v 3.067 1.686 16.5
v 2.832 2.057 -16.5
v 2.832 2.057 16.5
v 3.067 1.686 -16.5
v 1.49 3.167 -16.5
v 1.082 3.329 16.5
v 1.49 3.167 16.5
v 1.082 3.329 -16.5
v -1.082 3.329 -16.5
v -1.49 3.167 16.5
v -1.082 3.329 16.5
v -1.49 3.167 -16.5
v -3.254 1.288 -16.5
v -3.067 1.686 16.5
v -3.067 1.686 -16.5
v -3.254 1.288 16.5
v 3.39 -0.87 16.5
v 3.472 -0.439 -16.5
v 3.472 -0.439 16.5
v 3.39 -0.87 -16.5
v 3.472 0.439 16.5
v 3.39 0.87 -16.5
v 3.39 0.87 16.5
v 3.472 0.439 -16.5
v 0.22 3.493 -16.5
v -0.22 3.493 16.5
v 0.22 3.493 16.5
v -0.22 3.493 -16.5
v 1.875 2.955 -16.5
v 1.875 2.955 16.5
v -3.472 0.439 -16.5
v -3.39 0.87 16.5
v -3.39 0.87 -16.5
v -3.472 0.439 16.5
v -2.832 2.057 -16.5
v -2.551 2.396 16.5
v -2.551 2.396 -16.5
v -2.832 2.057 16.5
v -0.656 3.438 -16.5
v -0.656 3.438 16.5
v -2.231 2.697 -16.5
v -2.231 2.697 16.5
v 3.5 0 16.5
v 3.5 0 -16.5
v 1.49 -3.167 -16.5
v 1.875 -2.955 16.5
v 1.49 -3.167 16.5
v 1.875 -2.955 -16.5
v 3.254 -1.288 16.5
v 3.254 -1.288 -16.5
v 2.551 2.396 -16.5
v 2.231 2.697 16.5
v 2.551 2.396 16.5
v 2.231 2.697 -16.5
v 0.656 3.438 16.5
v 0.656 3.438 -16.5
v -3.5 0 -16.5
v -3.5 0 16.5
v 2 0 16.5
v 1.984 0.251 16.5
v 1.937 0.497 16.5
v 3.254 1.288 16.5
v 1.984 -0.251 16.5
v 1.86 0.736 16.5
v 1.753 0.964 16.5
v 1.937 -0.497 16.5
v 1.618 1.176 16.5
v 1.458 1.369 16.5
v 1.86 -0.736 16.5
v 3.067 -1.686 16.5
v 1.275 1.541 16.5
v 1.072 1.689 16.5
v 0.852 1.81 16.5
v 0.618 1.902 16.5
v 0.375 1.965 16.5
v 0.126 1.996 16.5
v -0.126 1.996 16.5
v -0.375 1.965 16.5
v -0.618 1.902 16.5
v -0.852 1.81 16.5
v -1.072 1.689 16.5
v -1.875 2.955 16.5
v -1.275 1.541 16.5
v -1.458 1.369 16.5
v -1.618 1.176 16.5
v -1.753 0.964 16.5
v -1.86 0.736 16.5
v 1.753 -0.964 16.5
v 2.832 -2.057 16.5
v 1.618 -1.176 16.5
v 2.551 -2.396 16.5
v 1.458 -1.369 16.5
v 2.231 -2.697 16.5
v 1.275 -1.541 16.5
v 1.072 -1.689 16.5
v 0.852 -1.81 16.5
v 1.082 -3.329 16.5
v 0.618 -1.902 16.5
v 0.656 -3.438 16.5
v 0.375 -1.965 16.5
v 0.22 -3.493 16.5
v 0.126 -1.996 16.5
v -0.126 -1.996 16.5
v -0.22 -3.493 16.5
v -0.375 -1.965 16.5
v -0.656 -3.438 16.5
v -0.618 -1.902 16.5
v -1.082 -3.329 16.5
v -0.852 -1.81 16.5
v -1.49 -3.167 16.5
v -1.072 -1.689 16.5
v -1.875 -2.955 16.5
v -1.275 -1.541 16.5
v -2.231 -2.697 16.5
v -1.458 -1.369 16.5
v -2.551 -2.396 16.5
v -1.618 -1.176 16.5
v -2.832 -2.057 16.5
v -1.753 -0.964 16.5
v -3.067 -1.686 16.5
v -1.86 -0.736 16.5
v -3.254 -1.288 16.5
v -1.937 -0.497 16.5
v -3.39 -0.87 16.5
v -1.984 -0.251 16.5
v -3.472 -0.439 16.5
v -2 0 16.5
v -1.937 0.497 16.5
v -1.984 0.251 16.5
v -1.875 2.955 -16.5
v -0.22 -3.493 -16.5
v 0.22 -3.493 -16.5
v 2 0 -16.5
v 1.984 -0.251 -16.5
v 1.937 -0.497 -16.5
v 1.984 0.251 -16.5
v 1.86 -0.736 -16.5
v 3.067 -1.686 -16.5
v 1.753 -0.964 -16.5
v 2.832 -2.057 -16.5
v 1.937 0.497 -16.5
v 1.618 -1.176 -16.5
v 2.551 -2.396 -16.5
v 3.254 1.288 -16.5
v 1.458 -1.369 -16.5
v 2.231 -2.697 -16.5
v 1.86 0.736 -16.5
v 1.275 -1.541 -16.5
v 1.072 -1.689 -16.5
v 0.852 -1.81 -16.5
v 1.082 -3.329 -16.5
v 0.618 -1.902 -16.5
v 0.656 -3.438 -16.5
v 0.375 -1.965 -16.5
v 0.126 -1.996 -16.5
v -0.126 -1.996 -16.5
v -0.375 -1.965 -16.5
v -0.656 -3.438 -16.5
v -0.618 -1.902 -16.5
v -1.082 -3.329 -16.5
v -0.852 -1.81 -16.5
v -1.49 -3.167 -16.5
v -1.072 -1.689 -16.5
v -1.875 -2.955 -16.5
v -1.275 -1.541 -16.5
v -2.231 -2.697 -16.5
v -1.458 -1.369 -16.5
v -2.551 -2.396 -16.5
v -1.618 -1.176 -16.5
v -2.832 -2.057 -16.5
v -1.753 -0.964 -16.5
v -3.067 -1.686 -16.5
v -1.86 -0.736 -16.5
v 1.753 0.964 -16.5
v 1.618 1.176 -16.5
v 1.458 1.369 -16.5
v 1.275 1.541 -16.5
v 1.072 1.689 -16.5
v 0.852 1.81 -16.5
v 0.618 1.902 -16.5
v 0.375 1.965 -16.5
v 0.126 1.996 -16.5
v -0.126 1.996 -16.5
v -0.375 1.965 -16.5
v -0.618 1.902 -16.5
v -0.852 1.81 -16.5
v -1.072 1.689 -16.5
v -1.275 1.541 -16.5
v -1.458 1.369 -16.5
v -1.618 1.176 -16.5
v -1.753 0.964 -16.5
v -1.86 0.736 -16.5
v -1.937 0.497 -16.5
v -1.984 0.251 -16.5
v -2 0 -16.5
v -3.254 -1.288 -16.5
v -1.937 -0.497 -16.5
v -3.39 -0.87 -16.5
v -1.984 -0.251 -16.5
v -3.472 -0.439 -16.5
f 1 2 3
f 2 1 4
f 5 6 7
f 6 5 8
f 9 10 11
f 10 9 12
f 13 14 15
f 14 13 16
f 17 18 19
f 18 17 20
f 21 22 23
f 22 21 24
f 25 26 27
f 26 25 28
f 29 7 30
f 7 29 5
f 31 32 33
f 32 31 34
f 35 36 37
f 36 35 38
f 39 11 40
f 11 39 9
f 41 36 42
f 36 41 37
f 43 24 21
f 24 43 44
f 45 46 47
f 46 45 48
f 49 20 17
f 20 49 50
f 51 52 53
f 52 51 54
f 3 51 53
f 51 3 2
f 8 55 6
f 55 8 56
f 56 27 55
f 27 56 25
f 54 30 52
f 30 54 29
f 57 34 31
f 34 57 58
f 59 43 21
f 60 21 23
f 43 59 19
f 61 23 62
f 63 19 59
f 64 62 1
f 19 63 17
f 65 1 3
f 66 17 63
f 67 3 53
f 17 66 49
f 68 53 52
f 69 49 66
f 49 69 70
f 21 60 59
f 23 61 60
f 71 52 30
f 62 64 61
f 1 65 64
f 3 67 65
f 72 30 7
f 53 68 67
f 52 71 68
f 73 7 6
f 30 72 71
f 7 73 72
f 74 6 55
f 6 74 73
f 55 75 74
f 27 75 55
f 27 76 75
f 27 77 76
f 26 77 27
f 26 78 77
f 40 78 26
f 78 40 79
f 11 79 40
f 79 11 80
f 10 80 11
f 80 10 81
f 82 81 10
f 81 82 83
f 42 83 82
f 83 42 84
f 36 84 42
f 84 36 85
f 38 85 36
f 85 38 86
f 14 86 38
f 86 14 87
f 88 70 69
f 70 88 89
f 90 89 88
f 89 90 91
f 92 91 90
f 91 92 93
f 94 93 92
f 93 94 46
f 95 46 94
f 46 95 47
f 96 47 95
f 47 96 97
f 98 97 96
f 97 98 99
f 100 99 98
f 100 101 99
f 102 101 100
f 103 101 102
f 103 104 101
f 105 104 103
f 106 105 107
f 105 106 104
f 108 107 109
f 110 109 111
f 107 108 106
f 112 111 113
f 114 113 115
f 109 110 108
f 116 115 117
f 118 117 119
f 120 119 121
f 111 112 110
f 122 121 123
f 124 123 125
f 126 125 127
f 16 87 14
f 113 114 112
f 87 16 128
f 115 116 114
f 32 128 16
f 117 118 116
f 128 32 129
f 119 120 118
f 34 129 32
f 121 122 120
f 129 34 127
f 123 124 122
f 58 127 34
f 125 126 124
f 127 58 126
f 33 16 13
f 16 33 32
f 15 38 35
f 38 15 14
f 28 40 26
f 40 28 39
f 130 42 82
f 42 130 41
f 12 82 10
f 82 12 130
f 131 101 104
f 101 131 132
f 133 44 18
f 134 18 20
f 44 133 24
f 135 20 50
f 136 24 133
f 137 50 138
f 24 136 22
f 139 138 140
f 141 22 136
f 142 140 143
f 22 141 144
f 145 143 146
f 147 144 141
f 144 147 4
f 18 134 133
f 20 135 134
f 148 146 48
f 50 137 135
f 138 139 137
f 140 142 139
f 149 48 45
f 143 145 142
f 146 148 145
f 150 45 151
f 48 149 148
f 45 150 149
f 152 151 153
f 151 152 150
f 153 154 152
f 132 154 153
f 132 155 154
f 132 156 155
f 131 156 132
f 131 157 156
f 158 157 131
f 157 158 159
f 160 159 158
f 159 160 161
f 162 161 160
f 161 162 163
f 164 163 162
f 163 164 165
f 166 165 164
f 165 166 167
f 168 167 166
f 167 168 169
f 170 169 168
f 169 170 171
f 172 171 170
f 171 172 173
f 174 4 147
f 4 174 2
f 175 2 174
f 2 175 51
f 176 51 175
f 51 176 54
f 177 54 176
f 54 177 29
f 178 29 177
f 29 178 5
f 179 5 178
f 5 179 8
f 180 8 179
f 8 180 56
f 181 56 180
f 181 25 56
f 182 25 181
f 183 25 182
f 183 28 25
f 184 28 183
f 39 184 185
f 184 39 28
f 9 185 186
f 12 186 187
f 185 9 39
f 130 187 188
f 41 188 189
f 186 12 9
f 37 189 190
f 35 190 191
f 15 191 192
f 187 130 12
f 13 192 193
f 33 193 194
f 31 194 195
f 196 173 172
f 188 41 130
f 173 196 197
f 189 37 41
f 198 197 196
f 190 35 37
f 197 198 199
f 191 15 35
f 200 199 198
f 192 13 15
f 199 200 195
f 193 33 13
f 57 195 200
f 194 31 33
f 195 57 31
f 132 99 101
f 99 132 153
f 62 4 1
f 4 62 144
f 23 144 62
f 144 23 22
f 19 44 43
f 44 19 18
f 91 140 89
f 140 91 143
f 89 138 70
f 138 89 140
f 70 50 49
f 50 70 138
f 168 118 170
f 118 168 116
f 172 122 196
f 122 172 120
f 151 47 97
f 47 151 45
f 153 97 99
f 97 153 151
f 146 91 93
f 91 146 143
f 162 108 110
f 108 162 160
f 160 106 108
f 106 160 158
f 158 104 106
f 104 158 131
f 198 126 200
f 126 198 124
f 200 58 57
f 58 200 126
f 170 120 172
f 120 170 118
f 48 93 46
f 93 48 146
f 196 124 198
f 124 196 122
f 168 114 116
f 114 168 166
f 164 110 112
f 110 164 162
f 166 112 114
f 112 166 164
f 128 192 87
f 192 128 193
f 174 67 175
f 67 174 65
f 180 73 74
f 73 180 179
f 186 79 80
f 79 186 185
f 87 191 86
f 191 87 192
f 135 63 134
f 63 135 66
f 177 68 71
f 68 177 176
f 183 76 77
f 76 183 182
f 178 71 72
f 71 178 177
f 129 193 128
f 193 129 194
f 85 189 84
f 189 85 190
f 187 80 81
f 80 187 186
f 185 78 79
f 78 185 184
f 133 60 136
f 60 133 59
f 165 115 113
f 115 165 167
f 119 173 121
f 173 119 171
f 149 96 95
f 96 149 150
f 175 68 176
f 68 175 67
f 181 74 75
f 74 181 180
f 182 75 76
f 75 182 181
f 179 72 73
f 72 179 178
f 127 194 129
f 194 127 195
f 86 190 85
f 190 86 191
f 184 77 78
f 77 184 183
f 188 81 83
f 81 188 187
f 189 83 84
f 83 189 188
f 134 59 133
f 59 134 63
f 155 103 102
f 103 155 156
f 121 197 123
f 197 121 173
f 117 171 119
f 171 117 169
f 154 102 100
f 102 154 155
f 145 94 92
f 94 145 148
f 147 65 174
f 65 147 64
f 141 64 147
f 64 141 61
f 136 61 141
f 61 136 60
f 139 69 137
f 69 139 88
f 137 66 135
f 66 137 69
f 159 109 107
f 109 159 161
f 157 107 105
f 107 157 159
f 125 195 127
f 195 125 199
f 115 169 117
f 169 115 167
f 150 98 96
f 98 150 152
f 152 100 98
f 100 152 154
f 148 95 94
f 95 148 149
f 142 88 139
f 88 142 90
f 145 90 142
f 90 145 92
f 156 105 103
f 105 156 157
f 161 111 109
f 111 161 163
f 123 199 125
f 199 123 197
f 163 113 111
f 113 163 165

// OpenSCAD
$fn = 50;


difference() {
	union() {
		translate(v = [0, 0, -16.5000000000]) {
			cylinder(h = 33, r = 3.5000000000);
		}
	}
	union() {
		translate(v = [0, 0, -100.0000000000]) {
			cylinder(h = 200, r = 2);
		}
	}
}
